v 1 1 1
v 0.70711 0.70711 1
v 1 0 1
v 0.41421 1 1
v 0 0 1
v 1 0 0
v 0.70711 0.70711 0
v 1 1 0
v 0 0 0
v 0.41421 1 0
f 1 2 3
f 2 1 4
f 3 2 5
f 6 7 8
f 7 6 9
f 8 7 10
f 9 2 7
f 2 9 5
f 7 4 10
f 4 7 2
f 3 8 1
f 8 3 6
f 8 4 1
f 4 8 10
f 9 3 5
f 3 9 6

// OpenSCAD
module rotated_square(size) {
  difference() {
    cube([size, size, size]);
    for (i = [0, 1, 2]) {
      for (j = [0, 1, 2]) {
        translate([i * (size / 3), j * (size / 3), 0]) {
          rotate([0, 0, 45]) {
            translate([0, 0, -size / 4]) {
              cube([size, size, size]);
            }
          }
        }
      }
    }
  }
}

rotated_square([50, 50, 50]);
